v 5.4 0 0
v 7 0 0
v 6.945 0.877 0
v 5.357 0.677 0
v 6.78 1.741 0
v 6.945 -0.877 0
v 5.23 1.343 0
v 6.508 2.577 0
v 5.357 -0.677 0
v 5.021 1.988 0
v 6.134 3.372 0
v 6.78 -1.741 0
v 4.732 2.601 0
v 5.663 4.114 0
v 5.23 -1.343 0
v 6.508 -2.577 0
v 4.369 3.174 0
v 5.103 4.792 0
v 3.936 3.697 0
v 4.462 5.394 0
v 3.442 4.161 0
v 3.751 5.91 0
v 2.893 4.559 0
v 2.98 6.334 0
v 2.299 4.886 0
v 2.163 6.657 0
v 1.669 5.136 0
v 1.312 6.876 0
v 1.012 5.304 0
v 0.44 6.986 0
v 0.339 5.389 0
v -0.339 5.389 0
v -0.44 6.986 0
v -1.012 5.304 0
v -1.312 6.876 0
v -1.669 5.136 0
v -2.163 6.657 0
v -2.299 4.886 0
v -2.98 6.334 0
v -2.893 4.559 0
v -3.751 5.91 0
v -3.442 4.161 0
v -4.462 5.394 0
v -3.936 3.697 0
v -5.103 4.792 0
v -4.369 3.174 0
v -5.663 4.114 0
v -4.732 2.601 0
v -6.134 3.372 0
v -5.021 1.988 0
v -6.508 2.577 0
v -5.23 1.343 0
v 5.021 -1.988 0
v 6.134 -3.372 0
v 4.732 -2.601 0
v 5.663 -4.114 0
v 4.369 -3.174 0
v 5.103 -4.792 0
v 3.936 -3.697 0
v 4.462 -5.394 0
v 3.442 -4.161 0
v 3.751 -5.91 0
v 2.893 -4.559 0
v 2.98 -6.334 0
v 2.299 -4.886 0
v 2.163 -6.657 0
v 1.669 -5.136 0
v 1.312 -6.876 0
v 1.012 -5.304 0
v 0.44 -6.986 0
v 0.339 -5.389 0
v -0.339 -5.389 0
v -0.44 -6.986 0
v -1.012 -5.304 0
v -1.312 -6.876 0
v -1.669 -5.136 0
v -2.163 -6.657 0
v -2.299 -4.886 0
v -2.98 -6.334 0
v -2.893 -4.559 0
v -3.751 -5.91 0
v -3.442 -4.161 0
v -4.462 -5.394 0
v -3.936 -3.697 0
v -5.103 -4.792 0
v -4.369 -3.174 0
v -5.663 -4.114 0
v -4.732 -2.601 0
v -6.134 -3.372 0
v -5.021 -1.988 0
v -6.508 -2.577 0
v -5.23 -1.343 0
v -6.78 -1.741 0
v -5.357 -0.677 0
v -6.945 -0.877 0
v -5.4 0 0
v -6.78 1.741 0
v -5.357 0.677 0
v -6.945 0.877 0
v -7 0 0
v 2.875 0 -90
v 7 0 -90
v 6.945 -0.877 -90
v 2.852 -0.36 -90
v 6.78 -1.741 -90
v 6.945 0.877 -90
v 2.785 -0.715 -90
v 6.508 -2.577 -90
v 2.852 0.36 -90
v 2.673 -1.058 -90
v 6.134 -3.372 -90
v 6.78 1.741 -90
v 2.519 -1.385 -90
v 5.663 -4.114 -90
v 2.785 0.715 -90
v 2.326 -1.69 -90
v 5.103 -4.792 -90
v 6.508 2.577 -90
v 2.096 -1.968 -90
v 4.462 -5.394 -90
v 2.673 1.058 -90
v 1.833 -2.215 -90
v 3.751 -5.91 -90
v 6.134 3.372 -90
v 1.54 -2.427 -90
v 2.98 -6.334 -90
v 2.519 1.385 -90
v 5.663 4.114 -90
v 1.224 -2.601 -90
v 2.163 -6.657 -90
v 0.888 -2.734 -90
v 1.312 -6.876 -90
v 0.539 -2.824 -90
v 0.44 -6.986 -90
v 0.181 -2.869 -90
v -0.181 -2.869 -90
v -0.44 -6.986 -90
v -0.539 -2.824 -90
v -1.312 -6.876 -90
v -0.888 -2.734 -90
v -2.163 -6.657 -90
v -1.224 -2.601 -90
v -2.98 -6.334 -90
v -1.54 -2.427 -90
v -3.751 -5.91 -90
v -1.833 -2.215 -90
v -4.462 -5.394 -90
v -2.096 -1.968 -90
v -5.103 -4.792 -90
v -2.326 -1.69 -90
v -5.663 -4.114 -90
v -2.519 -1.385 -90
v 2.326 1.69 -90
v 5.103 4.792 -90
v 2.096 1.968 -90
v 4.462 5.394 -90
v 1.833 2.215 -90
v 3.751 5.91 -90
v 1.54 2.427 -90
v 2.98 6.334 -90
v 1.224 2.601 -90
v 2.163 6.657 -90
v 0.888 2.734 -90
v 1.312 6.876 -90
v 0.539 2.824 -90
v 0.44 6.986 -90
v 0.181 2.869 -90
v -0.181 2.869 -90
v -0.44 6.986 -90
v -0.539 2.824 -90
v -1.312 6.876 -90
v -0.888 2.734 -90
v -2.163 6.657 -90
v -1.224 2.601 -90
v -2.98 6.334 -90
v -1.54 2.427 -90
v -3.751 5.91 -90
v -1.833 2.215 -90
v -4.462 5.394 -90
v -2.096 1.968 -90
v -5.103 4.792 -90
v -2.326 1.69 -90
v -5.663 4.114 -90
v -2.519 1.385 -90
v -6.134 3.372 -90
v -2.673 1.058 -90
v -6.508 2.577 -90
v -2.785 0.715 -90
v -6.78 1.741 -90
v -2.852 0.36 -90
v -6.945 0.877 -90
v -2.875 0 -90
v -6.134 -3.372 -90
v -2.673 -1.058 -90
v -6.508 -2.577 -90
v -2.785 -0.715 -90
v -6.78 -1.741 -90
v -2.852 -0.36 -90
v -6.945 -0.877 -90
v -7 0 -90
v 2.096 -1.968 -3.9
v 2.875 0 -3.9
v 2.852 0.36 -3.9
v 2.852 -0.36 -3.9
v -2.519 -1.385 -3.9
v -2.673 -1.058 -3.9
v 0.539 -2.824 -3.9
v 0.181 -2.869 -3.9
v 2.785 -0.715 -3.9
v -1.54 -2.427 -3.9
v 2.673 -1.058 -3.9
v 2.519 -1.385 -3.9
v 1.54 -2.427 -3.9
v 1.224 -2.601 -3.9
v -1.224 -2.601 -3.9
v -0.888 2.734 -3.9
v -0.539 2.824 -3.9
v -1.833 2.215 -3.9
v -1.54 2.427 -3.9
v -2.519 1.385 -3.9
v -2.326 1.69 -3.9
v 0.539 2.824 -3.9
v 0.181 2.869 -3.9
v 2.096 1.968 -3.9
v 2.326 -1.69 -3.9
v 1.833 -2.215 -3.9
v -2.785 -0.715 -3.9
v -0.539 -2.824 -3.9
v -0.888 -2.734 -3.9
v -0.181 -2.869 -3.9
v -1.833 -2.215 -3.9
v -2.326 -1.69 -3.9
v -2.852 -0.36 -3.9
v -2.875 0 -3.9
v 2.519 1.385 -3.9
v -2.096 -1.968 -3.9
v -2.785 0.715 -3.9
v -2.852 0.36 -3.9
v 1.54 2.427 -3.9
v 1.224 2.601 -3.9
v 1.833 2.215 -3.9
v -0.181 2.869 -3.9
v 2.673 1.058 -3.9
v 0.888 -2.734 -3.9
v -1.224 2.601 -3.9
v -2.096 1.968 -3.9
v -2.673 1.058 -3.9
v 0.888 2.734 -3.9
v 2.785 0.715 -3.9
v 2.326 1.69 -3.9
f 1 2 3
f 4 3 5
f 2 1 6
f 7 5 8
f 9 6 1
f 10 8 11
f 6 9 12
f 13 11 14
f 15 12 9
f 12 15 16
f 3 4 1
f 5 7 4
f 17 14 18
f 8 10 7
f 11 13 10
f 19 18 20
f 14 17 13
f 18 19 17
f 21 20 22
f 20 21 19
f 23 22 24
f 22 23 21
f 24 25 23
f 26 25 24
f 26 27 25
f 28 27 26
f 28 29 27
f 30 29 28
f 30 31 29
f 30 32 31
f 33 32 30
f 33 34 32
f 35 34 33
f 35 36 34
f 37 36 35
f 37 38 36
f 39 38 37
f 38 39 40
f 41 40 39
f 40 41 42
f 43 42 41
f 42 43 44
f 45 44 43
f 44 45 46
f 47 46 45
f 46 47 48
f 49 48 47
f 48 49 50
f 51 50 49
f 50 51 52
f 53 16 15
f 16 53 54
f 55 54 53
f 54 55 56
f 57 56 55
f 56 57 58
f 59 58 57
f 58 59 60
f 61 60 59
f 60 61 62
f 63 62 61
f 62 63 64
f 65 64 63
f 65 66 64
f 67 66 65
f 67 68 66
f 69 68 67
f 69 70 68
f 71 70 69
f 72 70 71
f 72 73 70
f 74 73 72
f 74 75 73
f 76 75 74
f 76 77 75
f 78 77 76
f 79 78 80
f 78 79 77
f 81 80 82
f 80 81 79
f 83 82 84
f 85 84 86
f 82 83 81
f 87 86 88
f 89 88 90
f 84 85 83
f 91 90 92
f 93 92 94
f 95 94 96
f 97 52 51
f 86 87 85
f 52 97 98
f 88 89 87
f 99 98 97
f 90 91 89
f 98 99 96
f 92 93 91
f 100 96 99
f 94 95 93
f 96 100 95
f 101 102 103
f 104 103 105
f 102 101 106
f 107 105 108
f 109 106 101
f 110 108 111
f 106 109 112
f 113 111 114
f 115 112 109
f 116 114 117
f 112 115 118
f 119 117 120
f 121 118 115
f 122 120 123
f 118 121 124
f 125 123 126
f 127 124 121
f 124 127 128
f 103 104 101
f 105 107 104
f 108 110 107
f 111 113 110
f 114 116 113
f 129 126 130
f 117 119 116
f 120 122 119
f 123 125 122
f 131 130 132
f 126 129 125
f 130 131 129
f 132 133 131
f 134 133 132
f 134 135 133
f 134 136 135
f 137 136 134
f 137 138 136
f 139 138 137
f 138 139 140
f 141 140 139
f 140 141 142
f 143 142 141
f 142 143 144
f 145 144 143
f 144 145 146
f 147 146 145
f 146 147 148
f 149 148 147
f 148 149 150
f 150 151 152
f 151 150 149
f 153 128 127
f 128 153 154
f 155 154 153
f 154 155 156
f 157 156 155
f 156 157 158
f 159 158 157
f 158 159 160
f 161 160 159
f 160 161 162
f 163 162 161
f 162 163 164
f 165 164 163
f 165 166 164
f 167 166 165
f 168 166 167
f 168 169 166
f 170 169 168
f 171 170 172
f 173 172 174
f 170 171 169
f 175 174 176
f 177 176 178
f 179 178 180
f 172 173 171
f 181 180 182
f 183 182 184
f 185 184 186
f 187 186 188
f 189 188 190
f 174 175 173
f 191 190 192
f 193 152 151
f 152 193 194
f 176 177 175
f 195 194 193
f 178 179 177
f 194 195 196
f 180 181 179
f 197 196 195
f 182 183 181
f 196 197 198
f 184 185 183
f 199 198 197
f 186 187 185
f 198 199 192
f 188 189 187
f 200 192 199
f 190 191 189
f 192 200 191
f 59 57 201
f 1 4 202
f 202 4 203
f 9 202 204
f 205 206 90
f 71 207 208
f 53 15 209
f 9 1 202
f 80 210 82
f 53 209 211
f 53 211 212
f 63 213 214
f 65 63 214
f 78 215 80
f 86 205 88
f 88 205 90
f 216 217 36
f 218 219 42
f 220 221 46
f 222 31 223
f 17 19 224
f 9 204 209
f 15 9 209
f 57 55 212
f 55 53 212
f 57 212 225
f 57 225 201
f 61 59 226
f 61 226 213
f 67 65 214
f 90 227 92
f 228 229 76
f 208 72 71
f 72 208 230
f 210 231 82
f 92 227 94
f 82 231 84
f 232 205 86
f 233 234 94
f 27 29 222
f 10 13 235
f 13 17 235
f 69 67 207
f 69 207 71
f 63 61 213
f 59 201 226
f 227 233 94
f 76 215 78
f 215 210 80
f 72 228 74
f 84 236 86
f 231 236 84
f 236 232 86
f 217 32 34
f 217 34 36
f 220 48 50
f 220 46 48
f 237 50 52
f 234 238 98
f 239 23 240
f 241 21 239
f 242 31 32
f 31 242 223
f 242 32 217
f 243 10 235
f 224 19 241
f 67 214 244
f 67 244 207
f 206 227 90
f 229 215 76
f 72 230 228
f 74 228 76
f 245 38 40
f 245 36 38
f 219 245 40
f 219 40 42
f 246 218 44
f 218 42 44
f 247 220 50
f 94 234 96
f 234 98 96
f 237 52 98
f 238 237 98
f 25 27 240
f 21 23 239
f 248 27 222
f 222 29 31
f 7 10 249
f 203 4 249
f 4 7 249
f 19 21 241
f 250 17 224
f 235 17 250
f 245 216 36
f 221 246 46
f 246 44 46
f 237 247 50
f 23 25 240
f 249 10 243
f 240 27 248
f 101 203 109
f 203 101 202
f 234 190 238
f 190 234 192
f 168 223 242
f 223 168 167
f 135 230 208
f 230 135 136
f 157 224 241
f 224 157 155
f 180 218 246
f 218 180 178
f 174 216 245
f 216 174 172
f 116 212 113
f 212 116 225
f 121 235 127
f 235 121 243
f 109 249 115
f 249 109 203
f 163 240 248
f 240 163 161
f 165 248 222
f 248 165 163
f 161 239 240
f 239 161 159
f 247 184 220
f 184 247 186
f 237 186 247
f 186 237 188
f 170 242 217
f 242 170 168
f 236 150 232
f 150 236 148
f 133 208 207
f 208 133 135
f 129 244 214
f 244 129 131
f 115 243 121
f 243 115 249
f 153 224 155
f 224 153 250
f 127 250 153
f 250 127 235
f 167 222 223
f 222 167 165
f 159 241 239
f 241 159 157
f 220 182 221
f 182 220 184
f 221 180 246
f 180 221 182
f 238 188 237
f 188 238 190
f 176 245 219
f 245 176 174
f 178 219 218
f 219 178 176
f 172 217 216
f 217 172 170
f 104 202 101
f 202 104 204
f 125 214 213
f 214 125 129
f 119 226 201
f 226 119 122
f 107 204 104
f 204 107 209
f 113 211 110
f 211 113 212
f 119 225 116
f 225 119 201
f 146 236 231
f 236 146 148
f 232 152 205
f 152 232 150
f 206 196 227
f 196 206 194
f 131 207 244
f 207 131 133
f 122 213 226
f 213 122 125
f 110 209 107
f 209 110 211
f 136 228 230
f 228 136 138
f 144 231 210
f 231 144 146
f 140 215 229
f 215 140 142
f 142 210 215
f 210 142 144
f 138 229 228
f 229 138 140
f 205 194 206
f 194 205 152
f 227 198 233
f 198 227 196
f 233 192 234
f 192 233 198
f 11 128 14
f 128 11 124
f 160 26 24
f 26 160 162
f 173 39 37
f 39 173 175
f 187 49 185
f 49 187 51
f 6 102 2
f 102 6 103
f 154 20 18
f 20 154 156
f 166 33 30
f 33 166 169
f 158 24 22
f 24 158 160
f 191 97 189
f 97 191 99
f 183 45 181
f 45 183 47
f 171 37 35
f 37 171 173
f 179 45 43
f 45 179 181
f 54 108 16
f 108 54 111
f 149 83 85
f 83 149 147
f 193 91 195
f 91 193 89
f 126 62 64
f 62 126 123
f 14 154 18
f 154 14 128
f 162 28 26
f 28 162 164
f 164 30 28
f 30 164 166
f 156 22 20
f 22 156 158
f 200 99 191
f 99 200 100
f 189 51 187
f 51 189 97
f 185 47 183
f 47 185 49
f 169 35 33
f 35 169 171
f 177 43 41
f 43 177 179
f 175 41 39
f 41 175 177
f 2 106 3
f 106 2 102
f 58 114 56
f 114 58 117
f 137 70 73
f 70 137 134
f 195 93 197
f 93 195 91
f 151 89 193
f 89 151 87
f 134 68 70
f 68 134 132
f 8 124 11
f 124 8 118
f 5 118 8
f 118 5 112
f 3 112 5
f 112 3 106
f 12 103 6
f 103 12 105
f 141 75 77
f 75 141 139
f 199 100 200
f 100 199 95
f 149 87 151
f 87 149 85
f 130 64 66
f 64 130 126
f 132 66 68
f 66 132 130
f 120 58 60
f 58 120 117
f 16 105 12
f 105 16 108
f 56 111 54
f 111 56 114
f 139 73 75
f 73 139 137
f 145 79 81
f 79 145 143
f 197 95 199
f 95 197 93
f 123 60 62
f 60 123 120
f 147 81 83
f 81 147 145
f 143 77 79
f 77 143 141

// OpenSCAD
$fn = 50;


difference() {
	union() {
		translate(v = [0, 0, -90.0000000000]) {
			cylinder(h = 90, r = 7.0000000000);
		}
		cylinder(h = 0, r = 17.0000000000);
	}
	union() {
		translate(v = [0, 0, 0]) {
			rotate(a = [0, 0, 0]) {
				difference() {
					union() {
						#translate(v = [0, 0, -90.0000000000]) {
							cylinder(h = 90, r = 2.6000000000);
						}
						#translate(v = [0, 0, -3.9000000000]) {
							cylinder(h = 3.9000000000, r = 7.0000000000, r1 = 2.8750000000, r2 = 5.4000000000);
						}
						#translate(v = [0, 0, -90.0000000000]) {
							cylinder(h = 90, r = 2.8750000000);
						}
						#translate(v = [0, 0, -90.0000000000]) {
							cylinder(h = 90, r = 2.6000000000);
						}
					}
					union();
				}
			}
		}
	}
}
